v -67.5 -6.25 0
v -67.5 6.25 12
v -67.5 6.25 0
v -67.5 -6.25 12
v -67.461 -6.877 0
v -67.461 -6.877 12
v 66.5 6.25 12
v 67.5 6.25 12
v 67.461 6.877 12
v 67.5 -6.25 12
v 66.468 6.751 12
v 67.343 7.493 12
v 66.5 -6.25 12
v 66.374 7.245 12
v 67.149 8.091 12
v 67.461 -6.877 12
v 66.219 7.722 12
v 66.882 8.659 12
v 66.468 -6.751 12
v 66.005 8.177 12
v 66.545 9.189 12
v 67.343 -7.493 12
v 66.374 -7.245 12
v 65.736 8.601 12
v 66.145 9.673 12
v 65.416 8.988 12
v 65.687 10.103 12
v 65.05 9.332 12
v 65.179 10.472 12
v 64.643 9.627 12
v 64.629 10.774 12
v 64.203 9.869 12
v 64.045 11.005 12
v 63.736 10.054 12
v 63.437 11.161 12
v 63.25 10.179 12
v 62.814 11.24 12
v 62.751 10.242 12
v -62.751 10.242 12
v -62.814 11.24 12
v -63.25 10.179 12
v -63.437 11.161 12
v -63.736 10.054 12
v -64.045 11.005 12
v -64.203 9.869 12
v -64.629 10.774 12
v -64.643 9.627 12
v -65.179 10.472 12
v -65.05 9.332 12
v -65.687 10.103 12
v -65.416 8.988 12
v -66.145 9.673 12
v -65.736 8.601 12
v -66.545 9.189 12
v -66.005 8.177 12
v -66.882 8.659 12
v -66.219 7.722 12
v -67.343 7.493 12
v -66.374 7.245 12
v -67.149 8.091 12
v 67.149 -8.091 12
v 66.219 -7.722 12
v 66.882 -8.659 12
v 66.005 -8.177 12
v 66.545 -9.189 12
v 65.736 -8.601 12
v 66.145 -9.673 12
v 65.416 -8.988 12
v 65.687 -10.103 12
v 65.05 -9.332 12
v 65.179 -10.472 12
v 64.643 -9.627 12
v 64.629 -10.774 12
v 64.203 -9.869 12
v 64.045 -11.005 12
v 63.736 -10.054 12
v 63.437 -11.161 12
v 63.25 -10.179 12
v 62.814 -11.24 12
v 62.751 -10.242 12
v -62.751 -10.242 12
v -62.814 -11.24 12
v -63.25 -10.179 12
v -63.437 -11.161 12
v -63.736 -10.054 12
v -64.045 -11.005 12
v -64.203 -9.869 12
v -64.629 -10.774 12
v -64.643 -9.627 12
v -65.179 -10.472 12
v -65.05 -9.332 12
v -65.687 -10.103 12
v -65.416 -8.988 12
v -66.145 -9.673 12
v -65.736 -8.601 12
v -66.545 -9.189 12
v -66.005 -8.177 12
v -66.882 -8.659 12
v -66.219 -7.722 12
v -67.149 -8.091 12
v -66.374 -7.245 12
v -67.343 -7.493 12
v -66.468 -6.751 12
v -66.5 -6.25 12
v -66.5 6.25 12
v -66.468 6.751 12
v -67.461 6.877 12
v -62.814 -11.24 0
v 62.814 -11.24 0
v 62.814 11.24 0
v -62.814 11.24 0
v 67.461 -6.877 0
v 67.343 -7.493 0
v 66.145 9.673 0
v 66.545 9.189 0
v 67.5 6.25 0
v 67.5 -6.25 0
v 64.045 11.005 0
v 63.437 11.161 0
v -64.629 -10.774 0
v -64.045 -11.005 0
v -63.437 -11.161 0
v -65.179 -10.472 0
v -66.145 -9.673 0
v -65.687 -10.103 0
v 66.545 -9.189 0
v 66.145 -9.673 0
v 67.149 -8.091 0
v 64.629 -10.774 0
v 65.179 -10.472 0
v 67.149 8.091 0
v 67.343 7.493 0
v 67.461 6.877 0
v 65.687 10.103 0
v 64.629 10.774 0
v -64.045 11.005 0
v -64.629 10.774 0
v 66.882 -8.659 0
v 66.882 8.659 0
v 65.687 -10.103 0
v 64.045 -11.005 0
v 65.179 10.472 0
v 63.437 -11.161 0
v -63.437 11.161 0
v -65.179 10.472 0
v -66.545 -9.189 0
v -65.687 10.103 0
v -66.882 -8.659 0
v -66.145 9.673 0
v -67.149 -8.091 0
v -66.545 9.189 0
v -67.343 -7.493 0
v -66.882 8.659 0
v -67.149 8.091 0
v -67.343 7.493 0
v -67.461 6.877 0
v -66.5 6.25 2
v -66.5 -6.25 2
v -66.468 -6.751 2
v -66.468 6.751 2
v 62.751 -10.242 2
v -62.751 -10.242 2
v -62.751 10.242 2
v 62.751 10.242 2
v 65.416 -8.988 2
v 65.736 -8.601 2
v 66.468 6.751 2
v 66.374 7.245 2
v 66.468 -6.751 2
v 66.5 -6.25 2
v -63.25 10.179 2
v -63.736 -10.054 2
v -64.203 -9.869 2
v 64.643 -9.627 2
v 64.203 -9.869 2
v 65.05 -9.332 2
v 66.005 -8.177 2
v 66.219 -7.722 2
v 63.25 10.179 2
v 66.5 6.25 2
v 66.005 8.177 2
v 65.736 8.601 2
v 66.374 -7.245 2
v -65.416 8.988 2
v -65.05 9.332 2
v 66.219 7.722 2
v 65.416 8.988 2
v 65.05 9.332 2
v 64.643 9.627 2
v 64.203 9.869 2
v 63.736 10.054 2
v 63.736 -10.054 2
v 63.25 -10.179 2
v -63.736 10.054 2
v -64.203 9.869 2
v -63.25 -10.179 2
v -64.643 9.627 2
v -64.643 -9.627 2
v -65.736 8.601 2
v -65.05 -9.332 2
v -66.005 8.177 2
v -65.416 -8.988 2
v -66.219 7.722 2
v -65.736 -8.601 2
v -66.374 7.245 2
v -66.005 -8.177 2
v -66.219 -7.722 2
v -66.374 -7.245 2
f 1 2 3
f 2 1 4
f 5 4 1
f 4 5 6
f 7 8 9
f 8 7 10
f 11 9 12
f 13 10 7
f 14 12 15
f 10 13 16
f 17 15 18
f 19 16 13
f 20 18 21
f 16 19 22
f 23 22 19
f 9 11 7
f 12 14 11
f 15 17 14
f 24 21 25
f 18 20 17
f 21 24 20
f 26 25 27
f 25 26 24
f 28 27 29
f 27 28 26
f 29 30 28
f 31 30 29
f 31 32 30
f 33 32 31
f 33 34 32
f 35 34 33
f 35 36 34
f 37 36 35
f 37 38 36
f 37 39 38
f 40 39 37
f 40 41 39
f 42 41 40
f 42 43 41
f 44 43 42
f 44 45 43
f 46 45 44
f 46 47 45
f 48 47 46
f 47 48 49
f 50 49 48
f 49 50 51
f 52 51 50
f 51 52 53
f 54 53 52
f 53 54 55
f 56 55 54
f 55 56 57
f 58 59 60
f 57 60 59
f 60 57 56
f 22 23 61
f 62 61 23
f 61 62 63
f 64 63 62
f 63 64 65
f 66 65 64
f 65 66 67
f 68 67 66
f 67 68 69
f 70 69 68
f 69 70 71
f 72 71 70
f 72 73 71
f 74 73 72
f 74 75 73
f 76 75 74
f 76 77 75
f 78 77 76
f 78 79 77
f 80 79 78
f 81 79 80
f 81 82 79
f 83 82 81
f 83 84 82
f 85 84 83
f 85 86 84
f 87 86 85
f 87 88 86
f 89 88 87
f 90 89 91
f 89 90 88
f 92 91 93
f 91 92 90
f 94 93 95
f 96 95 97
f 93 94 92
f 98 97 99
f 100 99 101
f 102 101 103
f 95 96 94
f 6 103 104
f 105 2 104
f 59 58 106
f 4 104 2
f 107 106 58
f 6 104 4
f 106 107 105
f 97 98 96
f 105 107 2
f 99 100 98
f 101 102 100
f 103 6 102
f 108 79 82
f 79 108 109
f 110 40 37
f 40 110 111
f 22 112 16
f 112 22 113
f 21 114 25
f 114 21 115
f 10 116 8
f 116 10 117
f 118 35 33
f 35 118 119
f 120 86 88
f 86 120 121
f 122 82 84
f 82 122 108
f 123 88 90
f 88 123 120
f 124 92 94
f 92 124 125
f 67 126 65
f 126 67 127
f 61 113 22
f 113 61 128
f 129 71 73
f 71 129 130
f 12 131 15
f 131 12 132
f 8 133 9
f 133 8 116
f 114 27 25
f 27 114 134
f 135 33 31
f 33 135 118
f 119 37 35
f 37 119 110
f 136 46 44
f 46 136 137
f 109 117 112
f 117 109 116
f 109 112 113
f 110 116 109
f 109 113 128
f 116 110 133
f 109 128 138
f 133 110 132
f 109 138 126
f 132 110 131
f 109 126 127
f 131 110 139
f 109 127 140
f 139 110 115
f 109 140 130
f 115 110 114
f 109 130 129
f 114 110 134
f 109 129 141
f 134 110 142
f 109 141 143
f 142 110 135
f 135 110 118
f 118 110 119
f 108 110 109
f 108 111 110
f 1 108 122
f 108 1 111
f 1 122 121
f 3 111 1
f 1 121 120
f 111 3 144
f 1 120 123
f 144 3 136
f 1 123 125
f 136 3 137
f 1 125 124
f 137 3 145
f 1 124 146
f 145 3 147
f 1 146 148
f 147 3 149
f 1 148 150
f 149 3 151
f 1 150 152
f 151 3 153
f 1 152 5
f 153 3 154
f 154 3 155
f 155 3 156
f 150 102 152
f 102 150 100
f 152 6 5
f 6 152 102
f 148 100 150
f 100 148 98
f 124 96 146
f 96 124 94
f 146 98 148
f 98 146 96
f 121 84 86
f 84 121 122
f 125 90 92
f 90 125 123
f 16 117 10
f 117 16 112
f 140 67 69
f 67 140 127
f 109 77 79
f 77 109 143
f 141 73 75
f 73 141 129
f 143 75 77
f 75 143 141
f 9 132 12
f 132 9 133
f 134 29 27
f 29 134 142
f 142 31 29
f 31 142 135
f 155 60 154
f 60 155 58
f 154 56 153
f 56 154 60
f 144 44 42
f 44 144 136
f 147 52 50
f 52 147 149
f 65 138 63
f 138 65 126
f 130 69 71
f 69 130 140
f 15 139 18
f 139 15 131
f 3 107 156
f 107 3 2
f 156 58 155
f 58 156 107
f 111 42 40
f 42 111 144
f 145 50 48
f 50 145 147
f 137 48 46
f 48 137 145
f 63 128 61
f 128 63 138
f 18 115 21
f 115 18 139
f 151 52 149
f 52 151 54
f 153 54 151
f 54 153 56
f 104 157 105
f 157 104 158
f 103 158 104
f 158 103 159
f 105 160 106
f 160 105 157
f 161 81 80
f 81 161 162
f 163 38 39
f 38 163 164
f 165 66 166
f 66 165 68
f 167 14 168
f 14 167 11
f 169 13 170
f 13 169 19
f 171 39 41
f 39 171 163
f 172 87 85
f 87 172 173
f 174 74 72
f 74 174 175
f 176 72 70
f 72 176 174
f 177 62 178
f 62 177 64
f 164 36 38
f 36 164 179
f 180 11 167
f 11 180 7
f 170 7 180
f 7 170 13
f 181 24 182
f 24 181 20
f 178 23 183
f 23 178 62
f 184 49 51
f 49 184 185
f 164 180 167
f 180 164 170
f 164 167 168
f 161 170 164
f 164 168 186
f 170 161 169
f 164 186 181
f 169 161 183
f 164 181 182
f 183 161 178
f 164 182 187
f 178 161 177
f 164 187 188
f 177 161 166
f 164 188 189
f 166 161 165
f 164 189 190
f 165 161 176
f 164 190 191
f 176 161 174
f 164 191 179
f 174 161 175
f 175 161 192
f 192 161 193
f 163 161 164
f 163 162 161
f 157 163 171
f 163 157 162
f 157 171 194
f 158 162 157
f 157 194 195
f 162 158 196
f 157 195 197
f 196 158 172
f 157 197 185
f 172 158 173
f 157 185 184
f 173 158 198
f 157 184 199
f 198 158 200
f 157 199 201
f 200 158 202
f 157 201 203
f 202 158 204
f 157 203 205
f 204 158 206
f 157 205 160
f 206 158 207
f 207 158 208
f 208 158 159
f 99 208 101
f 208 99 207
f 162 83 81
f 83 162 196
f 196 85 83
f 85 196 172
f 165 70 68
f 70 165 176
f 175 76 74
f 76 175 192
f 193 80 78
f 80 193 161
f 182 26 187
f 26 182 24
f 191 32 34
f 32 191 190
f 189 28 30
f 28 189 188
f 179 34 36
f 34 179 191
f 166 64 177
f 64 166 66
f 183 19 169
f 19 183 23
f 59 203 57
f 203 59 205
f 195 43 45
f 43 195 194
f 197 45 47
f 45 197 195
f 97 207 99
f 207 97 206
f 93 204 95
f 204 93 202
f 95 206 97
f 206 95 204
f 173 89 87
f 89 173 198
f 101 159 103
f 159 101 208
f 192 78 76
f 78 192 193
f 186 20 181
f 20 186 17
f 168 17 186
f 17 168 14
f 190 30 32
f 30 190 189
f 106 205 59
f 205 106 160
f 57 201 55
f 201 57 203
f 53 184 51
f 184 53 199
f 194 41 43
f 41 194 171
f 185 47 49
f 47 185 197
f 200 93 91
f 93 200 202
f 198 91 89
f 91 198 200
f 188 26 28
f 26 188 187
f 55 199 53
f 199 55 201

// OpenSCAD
$fn = 50;


difference() {
	union() {
		hull() {
			translate(v = [-62.5000000000, 6.2500000000, 0]) {
				cylinder(h = 12, r = 5);
			}
			translate(v = [62.5000000000, 6.2500000000, 0]) {
				cylinder(h = 12, r = 5);
			}
			translate(v = [-62.5000000000, -6.2500000000, 0]) {
				cylinder(h = 12, r = 5);
			}
			translate(v = [62.5000000000, -6.2500000000, 0]) {
				cylinder(h = 12, r = 5);
			}
		}
	}
	union() {
		translate(v = [0, 0, 2]) {
			hull() {
				translate(v = [-62.5000000000, 6.2500000000, 0]) {
					cylinder(h = 10, r = 4);
				}
				translate(v = [62.5000000000, 6.2500000000, 0]) {
					cylinder(h = 10, r = 4);
				}
				translate(v = [-62.5000000000, -6.2500000000, 0]) {
					cylinder(h = 10, r = 4);
				}
				translate(v = [62.5000000000, -6.2500000000, 0]) {
					cylinder(h = 10, r = 4);
				}
			}
		}
	}
}
